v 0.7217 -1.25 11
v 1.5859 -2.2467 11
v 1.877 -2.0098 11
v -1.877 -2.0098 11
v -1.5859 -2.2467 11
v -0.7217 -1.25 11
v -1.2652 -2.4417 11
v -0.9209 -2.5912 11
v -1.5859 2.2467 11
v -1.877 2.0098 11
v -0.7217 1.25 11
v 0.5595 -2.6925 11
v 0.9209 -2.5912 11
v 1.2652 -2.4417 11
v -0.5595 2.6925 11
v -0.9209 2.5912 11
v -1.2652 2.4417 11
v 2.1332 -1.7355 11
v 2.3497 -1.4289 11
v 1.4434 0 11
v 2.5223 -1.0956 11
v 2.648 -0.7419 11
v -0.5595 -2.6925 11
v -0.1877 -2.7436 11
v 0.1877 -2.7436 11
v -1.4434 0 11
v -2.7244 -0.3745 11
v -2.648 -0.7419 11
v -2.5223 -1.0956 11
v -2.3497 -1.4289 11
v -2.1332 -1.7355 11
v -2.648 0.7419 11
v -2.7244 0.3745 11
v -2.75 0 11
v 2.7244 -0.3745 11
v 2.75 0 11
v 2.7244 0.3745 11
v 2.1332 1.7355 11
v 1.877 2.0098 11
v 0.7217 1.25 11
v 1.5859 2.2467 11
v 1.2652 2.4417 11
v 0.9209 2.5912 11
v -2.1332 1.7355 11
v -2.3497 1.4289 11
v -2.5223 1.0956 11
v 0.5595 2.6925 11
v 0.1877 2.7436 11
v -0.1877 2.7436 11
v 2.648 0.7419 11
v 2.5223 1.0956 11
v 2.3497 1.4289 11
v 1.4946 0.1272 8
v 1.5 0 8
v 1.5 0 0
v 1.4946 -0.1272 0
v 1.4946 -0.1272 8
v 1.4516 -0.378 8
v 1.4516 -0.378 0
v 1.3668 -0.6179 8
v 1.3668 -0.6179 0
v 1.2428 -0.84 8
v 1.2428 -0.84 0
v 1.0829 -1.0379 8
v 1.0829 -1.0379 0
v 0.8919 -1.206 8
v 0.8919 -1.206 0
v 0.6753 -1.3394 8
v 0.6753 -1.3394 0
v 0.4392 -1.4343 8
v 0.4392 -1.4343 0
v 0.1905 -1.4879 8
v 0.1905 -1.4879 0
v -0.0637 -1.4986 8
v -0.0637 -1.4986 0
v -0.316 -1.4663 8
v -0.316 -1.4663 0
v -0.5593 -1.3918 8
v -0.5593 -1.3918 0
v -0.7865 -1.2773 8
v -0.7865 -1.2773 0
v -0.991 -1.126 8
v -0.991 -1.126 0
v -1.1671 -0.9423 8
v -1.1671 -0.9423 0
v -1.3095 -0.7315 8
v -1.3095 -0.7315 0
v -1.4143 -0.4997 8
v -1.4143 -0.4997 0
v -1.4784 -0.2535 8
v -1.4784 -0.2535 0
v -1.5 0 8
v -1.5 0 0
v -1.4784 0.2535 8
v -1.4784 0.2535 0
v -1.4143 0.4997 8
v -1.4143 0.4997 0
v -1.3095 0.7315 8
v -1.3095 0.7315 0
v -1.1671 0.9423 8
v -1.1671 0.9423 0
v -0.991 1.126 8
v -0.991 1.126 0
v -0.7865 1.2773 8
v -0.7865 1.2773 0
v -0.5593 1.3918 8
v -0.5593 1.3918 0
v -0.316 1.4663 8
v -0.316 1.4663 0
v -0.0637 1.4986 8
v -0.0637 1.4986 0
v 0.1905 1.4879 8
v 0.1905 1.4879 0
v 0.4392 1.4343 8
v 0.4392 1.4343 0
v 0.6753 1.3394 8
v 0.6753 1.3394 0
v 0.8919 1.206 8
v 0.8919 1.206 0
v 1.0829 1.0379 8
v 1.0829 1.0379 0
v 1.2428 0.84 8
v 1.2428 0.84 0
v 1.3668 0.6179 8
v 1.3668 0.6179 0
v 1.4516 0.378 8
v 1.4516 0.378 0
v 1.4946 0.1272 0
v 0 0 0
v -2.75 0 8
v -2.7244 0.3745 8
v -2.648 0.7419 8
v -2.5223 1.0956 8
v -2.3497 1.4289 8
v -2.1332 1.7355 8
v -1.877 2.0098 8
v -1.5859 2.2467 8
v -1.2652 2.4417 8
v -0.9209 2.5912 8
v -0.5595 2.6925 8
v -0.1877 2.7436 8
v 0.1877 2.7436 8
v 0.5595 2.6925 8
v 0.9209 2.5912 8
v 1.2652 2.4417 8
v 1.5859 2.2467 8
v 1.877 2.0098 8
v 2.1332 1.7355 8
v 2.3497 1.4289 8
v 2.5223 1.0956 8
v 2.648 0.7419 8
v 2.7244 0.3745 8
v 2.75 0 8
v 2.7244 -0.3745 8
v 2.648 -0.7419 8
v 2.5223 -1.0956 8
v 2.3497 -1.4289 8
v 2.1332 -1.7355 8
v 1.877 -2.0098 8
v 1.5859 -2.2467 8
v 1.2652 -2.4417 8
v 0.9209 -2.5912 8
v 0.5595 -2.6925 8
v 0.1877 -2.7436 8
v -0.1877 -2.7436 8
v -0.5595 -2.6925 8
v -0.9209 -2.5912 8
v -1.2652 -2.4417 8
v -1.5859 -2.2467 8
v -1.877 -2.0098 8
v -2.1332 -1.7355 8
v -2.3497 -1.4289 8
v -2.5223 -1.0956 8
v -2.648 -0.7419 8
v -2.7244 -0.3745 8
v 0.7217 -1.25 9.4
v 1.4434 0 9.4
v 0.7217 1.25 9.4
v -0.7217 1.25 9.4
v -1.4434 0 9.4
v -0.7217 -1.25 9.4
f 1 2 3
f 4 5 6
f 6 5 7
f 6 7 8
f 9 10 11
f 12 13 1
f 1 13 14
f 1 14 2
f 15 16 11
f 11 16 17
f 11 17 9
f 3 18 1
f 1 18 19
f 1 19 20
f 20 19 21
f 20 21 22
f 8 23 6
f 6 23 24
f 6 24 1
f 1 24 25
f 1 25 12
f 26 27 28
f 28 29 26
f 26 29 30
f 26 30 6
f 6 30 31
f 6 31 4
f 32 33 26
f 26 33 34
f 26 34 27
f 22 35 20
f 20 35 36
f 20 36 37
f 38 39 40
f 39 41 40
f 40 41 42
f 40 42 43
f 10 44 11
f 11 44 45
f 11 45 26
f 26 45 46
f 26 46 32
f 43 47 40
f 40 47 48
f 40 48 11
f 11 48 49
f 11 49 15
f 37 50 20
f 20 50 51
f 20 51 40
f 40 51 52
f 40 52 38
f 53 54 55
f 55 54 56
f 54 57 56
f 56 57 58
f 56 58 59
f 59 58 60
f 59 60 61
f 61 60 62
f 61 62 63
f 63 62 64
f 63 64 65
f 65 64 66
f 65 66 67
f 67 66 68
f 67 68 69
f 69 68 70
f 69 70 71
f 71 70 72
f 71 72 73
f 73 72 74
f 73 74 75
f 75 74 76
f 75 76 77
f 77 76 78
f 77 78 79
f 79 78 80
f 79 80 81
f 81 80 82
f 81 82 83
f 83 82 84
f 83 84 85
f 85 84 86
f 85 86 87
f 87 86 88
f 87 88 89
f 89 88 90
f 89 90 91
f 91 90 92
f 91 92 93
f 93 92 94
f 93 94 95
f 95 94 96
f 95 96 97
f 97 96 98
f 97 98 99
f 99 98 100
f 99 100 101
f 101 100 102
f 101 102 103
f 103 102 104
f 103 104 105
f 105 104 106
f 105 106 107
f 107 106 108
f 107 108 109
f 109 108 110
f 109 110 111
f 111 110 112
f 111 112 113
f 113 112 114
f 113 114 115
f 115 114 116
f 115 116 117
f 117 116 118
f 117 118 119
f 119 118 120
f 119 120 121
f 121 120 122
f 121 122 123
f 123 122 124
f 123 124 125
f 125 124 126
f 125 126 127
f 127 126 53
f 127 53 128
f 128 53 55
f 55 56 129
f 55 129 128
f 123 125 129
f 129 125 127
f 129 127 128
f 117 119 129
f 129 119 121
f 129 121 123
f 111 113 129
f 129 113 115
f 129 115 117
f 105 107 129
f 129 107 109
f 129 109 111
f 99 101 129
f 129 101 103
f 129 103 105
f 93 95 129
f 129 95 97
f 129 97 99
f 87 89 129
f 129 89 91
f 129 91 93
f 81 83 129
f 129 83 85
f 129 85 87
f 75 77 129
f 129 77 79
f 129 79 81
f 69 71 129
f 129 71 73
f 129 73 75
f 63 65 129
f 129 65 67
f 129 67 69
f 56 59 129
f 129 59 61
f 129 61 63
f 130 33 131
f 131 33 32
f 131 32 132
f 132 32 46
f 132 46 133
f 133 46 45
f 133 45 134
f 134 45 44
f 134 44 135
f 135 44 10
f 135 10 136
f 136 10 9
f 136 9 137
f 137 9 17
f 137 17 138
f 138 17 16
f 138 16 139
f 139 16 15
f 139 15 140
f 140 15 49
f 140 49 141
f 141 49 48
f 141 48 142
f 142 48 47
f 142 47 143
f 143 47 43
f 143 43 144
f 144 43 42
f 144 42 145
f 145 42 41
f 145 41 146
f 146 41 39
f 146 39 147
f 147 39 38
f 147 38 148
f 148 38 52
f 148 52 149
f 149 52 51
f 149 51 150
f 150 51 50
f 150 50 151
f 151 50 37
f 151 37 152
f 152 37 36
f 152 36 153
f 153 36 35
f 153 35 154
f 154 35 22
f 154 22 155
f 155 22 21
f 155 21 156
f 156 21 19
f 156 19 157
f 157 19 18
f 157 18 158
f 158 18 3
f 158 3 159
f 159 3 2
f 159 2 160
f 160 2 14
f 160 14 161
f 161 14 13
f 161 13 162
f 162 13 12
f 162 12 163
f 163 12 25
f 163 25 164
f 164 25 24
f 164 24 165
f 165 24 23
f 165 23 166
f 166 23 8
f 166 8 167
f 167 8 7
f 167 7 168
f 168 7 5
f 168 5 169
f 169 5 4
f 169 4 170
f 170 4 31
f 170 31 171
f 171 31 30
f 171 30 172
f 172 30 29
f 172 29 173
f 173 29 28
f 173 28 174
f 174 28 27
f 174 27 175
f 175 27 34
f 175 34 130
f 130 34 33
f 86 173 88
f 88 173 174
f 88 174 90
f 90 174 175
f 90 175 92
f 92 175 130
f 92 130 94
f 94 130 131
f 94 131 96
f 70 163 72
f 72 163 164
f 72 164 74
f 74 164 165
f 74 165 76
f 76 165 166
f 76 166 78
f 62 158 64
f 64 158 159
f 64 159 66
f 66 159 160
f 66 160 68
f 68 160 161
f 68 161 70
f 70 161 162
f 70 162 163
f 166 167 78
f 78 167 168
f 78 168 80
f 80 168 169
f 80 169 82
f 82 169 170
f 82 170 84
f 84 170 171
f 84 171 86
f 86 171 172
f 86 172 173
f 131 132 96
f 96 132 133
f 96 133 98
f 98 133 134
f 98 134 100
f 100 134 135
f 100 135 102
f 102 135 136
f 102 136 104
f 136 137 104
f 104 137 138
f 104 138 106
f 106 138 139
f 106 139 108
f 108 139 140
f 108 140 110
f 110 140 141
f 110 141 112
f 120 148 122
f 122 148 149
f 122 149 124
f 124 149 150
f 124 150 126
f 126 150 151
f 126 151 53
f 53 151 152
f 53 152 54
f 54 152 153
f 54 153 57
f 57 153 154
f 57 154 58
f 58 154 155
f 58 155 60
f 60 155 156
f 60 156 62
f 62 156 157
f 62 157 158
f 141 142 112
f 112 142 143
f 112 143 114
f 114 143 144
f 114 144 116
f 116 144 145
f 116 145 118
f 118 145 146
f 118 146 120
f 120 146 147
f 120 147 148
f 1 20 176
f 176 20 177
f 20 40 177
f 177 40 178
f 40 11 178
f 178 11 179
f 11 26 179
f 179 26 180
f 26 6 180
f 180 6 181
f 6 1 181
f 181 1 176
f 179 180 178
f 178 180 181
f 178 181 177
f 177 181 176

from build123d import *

# Parameters (mm, degrees)
SKETCH1_R    = 1.5
SHANK_DEPTH  = 8
SKETCH2_R    = 2.75
HEAD_DEPTH   = 3
SOCKET_DEPTH = 1.6


with BuildPart() as part:
    # Sketch1 → Shank (new body)
    with BuildSketch(Plane.XY):
        Circle(SKETCH1_R)
    extrude(amount=SHANK_DEPTH)

    # Sketch2 → Head (add)
    with BuildSketch(Plane.XY.offset(8)):
        Circle(SKETCH2_R)
    extrude(amount=HEAD_DEPTH)

    # Sketch3 → Socket (cut)
    with BuildSketch(Plane.XY.offset(9.4)):
        Polygon((1.443375673, 0), (0.721687836, 1.25), (-0.721687836, 1.25), (-1.443375673, 0), (-0.721687836, -1.25), (0.721687836, -1.25), align=None)
    extrude(amount=SOCKET_DEPTH, mode=Mode.SUBTRACT)


solid = part.part
